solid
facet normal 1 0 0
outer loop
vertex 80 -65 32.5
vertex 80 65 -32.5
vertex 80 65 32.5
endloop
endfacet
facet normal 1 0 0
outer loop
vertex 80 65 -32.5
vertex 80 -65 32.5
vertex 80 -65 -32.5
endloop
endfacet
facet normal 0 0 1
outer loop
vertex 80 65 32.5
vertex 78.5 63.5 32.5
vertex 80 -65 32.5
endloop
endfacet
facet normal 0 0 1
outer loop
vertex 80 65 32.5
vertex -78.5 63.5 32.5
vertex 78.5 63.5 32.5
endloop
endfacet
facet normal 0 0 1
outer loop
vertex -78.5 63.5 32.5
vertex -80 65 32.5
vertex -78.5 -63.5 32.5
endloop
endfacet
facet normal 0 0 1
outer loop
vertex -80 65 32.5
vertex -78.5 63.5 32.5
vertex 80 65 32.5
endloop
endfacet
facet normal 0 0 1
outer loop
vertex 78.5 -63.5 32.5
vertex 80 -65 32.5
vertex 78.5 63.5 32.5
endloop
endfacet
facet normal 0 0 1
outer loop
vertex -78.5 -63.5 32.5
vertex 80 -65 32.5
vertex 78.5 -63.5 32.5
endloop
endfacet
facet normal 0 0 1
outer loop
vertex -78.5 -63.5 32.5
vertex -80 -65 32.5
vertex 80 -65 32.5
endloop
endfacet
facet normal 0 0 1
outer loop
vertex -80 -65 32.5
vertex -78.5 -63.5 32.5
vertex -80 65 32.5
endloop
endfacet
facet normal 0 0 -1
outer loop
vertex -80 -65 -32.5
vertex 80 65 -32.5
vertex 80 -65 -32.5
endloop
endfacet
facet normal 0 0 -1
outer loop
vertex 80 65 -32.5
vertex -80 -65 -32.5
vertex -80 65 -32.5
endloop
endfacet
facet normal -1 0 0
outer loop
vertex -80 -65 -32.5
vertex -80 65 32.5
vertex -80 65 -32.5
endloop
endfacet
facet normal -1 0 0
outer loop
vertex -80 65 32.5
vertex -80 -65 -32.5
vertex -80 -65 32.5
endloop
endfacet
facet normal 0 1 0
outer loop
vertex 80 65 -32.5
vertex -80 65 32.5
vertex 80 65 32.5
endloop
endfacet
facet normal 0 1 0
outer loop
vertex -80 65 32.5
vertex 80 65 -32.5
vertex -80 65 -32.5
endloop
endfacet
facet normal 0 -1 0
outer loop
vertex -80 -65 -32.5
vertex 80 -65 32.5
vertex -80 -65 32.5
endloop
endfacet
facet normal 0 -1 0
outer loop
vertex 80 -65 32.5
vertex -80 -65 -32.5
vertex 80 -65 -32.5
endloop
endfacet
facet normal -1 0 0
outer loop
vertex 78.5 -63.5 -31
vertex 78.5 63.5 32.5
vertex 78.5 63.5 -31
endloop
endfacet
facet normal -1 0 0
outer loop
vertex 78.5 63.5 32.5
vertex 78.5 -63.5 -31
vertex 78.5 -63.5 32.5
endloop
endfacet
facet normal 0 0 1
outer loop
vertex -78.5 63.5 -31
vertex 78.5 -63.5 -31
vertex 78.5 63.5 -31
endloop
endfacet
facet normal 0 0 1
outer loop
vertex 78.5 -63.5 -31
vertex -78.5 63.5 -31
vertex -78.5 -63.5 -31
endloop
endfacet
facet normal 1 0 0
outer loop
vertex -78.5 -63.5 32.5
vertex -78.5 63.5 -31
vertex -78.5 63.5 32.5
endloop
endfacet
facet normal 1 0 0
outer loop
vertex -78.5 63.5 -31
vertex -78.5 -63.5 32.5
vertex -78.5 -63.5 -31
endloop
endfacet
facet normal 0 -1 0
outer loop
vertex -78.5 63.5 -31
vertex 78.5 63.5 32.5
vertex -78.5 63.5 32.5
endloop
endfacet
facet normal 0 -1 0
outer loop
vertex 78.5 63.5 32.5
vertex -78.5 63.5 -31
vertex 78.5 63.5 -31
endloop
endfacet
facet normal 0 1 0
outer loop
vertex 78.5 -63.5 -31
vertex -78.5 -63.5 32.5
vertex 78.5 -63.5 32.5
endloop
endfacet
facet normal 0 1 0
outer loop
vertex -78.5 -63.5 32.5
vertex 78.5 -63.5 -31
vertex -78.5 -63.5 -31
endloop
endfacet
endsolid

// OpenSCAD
// ========================================
// a 160 x 130 x 65 mm enclosure with 1.5 mm wall thickness
// NeuroCAD canonical IR; dimensions are millimetres
// ========================================
$fn = 48;

difference() {
  cube(size=[160, 130, 65], center=true);
  translate([0, 0, 0.85]) {
    cube(size=[157, 127, 63.7], center=true);
  }
}
